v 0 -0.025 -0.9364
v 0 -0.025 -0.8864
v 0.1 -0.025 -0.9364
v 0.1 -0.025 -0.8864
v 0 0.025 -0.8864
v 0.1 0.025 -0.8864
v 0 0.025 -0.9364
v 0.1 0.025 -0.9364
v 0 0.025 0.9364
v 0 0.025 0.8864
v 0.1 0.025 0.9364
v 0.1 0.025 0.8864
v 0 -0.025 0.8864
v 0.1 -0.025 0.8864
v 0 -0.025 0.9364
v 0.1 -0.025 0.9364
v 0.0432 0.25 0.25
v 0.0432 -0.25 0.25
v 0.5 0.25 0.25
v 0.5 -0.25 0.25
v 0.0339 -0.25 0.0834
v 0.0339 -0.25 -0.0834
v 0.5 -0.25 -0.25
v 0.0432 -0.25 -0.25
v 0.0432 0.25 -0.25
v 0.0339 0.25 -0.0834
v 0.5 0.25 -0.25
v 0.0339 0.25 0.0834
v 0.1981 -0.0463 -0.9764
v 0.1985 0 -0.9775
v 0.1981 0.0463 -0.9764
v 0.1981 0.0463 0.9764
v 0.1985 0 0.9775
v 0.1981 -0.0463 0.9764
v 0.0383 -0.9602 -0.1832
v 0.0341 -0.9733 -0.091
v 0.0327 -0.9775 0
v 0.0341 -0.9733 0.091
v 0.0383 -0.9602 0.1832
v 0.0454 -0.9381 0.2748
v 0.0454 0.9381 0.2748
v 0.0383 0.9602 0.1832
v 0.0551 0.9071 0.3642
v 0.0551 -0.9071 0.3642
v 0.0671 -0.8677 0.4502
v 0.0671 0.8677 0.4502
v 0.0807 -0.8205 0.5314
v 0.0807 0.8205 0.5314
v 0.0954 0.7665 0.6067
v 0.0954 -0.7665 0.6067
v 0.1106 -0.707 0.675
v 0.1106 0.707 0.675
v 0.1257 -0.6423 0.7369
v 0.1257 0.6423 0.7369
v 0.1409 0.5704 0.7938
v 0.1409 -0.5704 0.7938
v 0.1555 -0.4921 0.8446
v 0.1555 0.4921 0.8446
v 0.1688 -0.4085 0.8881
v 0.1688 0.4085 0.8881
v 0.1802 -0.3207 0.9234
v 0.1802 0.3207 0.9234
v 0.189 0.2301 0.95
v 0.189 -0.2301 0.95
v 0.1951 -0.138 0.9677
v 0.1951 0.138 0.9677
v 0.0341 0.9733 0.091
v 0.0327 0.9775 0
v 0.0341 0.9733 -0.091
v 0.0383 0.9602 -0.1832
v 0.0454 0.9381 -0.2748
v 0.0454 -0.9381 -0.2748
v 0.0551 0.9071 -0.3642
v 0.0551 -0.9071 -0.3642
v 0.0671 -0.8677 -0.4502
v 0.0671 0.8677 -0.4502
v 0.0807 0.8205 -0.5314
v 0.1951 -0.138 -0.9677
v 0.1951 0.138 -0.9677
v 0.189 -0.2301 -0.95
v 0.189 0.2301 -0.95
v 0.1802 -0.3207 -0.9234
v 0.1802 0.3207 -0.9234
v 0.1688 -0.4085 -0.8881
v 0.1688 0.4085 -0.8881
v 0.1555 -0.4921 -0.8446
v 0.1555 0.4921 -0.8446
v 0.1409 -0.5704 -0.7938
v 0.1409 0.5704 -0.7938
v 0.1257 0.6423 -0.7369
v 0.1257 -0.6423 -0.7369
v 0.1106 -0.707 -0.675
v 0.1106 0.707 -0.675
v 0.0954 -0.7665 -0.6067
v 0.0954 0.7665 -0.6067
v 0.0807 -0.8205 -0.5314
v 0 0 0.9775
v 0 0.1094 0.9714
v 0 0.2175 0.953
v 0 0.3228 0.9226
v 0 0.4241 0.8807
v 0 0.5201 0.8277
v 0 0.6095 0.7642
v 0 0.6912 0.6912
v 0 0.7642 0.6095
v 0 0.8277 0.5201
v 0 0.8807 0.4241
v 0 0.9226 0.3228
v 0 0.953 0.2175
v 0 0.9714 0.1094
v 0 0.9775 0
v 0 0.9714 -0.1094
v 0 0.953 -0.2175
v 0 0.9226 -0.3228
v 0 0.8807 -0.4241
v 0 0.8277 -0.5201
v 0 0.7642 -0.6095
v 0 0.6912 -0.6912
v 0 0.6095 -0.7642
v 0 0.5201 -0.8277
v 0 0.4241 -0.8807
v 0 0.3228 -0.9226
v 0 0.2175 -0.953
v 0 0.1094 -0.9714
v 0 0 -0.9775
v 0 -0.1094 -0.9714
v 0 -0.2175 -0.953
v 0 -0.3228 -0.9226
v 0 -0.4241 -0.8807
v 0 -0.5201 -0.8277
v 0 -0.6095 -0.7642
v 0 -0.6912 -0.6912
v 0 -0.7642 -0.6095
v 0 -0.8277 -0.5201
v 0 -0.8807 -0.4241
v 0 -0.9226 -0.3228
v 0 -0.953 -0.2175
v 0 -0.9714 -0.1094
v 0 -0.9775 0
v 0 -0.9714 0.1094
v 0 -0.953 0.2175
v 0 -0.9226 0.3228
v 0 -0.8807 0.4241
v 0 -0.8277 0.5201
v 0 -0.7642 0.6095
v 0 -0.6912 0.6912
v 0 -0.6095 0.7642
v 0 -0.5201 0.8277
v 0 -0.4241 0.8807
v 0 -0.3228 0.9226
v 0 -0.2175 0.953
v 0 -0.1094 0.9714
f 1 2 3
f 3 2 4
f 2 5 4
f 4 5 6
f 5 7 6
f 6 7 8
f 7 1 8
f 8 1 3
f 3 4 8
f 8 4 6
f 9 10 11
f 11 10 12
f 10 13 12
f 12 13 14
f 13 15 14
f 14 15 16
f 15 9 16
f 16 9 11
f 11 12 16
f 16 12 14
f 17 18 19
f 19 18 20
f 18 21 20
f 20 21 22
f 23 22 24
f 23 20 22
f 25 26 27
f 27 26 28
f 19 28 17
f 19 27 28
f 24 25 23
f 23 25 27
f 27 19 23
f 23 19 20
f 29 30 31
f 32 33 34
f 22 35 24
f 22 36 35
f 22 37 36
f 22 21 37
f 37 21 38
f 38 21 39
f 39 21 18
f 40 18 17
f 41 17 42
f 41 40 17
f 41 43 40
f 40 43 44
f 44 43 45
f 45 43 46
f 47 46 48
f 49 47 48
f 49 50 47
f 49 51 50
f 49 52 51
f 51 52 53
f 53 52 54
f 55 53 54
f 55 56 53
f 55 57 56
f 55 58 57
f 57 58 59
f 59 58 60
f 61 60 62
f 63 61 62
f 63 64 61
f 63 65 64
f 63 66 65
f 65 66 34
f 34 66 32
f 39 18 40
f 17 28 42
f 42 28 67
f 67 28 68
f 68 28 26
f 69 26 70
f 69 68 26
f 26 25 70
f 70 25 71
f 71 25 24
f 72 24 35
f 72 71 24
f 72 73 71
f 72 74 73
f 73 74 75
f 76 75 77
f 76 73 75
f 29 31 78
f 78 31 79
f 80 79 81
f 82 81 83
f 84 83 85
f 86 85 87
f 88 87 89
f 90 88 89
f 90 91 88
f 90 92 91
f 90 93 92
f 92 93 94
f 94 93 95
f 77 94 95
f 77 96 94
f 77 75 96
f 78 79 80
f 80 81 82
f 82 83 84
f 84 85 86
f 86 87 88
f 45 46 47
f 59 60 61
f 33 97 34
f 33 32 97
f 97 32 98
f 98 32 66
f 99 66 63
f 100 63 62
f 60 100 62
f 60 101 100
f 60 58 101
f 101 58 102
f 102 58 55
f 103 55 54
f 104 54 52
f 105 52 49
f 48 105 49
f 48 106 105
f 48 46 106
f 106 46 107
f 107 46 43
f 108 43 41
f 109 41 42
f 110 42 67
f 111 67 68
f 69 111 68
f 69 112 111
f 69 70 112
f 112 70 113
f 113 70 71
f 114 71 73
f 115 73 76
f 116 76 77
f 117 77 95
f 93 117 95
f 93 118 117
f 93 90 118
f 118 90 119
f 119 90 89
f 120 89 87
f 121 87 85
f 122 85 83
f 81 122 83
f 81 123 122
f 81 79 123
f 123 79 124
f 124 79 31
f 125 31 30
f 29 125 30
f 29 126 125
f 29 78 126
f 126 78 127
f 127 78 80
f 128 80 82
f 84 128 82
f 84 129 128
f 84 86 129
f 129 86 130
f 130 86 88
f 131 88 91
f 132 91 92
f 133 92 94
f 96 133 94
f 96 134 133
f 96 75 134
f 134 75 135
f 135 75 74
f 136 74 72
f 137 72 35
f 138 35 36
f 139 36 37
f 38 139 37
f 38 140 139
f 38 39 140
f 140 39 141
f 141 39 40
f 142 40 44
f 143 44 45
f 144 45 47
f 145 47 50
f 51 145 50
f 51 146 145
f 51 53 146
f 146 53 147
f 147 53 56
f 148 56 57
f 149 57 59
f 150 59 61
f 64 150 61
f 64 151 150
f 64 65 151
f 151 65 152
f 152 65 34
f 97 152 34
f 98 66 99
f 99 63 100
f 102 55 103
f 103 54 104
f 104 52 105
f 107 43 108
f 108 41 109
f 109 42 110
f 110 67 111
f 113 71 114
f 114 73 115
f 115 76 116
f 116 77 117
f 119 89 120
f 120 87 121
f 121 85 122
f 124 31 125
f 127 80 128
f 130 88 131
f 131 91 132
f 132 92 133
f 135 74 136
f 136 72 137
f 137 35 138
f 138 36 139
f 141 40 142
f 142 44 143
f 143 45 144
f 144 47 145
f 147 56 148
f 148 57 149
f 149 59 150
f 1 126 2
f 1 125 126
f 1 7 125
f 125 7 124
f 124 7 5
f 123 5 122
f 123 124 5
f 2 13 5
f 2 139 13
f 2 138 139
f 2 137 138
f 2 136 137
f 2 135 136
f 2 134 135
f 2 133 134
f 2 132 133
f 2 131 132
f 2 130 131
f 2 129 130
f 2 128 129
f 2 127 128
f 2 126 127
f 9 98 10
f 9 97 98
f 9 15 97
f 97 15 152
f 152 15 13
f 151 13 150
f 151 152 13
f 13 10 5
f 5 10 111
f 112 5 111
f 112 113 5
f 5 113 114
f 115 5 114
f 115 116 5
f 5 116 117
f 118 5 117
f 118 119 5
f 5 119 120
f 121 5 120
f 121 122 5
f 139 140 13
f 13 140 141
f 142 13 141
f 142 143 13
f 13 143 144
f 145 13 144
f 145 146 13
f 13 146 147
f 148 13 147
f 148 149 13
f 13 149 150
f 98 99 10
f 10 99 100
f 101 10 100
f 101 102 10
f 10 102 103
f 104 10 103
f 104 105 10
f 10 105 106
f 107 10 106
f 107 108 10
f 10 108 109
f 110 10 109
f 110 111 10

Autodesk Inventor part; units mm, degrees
ref_plane "YZ Plane" through (0, 0, 0) normal (1, 0, 0) x (0, 1, 0)
ref_plane "XZ Plane" through (0, 0, 0) normal (0, 1, 0) x (-1, 0, 0)
ref_plane "XY Plane" through (0, 0, 0) normal (0, 0, 1) x (1, 0, 0)
sketch "Boceto1" plane through (0, 0, 0) normal (1, 0, 0) x (0, 1, 0)
  circle A0 centre (-0.0022, 0) radius 0.8492
  circle A1 centre (-1.5281, -0.0006) radius 0.1032
  circle A2 centre (0, 0) radius 0.9775
extrude "Extrusión1" add sketch "Boceto1" along normal blind 0.2 contours A0 | A2
sketch "Boceto2" plane through (0, 0, 0) normal (0, 1, 0) x (-1, 0, 0)
  arc A0 (-0.1981, -0.9764) -> (-0.1981, 0.9764) centre (-2.9972, 0) ccw
  arc A1 (-0.1981, 0.9764) -> (-0.4354, 1.174) centre (-0.4814, 0.8776) ccw
  arc A2 (-0.4354, -1.174) -> (-0.1981, -0.9764) centre (-0.4814, -0.8776) ccw
  arc A3 (-0.1981, -0.9764) -> (-0.1981, 0.9764) centre (-2.9972, 0) ccw
  arc A4 (-0.1981, 0.9764) -> (-0.4354, 1.174) centre (-0.4814, 0.8776) ccw
  arc A5 (-0.4354, -1.174) -> (-0.1981, -0.9764) centre (-0.4814, -0.8776) ccw
  arc A6 (-0.1981, -0.9764) -> (-0.1981, 0.9764) centre (-2.9972, 0) ccw
  arc A7 (-0.1981, 0.9764) -> (-0.4354, 1.174) centre (-0.4814, 0.8776) ccw
  arc A8 (-0.4354, -1.174) -> (-0.1981, -0.9764) centre (-0.4814, -0.8776) ccw
  line L0 (-0.2, 0.9775) -> (-0.2, -0.9775) projected
  line L1 (0, -0.9775) -> (0, 0.9775) projected
  line L2 (-0.4354, 1.174) -> (-0.4354, -1.174)
  point P0 (0, 0)
extrude "Extrusión2" cut sketch "Boceto2" along normal mid plane 10
sketch "Boceto3" plane through (0, 0, 0) normal (-1, 0, 0) x (0, 0, 1)
  line L0 (0, 0) -> (0, -0.25)
  line L1 (0, -0.25) -> (-0.25, -0.25)
  line L2 (-0.25, -0.25) -> (-0.25, 0.25)
  line L3 (-0.25, 0.25) -> (0.25, 0.25)
  line L4 (0.25, 0.25) -> (0.25, -0.25)
  line L5 (0.25, -0.25) -> (-0.25, -0.25)
  dimension "d4" = 0.25
  dimension "d5" = 0.25
  dimension "d6" = 0.5
  dimension "d7" = 0.5
  dimension "d8" = 0.5
extrude "Extrusión3" add sketch "Boceto3" against normal blind 0.5
sketch "Boceto4" plane through (0, 0, 0) normal (-1, 0, 0) x (0, 0, 1)
  line L0 (-0.9764, 0.0463) -> (-0.9764, -0.0463) projected
  line L1 (-0.9114, 0.025) -> (-0.9364, 0.025)
  line L2 (-0.9364, 0.025) -> (-0.9364, -0.025)
  line L3 (-0.9364, -0.025) -> (-0.8864, -0.025)
  line L4 (-0.8864, -0.025) -> (-0.8864, 0.025)
  line L5 (-0.8864, 0.025) -> (-0.9364, 0.025)
  line L6 (0.025, -0.9364) -> (-0.025, -0.9364)
  line L7 (-0.025, -0.9364) -> (-0.025, -0.8864)
  line L8 (-0.025, -0.8864) -> (0.025, -0.8864)
  line L9 (0.025, -0.8864) -> (0.025, -0.9364)
  line L10 (0.9114, 0.025) -> (0.9364, 0.025)
  line L11 (0.9364, 0.025) -> (0.9364, -0.025)
  line L12 (0.9364, -0.025) -> (0.8864, -0.025)
  line L13 (0.8864, -0.025) -> (0.8864, 0.025)
  line L14 (0.8864, 0.025) -> (0.9364, 0.025)
  point P0 (0, 0)
  dimension "d13" = 0.025
  dimension "d14" = 0.05
  dimension "d15" = 0.05
  dimension "d16" = 0.05
extrude "Extrusión4" cut sketch "Boceto4" against normal blind 0.1 contours L5 L4 L3 L2 L1 | L10 L11 L12 L13 L14
properties part number "ET19"
